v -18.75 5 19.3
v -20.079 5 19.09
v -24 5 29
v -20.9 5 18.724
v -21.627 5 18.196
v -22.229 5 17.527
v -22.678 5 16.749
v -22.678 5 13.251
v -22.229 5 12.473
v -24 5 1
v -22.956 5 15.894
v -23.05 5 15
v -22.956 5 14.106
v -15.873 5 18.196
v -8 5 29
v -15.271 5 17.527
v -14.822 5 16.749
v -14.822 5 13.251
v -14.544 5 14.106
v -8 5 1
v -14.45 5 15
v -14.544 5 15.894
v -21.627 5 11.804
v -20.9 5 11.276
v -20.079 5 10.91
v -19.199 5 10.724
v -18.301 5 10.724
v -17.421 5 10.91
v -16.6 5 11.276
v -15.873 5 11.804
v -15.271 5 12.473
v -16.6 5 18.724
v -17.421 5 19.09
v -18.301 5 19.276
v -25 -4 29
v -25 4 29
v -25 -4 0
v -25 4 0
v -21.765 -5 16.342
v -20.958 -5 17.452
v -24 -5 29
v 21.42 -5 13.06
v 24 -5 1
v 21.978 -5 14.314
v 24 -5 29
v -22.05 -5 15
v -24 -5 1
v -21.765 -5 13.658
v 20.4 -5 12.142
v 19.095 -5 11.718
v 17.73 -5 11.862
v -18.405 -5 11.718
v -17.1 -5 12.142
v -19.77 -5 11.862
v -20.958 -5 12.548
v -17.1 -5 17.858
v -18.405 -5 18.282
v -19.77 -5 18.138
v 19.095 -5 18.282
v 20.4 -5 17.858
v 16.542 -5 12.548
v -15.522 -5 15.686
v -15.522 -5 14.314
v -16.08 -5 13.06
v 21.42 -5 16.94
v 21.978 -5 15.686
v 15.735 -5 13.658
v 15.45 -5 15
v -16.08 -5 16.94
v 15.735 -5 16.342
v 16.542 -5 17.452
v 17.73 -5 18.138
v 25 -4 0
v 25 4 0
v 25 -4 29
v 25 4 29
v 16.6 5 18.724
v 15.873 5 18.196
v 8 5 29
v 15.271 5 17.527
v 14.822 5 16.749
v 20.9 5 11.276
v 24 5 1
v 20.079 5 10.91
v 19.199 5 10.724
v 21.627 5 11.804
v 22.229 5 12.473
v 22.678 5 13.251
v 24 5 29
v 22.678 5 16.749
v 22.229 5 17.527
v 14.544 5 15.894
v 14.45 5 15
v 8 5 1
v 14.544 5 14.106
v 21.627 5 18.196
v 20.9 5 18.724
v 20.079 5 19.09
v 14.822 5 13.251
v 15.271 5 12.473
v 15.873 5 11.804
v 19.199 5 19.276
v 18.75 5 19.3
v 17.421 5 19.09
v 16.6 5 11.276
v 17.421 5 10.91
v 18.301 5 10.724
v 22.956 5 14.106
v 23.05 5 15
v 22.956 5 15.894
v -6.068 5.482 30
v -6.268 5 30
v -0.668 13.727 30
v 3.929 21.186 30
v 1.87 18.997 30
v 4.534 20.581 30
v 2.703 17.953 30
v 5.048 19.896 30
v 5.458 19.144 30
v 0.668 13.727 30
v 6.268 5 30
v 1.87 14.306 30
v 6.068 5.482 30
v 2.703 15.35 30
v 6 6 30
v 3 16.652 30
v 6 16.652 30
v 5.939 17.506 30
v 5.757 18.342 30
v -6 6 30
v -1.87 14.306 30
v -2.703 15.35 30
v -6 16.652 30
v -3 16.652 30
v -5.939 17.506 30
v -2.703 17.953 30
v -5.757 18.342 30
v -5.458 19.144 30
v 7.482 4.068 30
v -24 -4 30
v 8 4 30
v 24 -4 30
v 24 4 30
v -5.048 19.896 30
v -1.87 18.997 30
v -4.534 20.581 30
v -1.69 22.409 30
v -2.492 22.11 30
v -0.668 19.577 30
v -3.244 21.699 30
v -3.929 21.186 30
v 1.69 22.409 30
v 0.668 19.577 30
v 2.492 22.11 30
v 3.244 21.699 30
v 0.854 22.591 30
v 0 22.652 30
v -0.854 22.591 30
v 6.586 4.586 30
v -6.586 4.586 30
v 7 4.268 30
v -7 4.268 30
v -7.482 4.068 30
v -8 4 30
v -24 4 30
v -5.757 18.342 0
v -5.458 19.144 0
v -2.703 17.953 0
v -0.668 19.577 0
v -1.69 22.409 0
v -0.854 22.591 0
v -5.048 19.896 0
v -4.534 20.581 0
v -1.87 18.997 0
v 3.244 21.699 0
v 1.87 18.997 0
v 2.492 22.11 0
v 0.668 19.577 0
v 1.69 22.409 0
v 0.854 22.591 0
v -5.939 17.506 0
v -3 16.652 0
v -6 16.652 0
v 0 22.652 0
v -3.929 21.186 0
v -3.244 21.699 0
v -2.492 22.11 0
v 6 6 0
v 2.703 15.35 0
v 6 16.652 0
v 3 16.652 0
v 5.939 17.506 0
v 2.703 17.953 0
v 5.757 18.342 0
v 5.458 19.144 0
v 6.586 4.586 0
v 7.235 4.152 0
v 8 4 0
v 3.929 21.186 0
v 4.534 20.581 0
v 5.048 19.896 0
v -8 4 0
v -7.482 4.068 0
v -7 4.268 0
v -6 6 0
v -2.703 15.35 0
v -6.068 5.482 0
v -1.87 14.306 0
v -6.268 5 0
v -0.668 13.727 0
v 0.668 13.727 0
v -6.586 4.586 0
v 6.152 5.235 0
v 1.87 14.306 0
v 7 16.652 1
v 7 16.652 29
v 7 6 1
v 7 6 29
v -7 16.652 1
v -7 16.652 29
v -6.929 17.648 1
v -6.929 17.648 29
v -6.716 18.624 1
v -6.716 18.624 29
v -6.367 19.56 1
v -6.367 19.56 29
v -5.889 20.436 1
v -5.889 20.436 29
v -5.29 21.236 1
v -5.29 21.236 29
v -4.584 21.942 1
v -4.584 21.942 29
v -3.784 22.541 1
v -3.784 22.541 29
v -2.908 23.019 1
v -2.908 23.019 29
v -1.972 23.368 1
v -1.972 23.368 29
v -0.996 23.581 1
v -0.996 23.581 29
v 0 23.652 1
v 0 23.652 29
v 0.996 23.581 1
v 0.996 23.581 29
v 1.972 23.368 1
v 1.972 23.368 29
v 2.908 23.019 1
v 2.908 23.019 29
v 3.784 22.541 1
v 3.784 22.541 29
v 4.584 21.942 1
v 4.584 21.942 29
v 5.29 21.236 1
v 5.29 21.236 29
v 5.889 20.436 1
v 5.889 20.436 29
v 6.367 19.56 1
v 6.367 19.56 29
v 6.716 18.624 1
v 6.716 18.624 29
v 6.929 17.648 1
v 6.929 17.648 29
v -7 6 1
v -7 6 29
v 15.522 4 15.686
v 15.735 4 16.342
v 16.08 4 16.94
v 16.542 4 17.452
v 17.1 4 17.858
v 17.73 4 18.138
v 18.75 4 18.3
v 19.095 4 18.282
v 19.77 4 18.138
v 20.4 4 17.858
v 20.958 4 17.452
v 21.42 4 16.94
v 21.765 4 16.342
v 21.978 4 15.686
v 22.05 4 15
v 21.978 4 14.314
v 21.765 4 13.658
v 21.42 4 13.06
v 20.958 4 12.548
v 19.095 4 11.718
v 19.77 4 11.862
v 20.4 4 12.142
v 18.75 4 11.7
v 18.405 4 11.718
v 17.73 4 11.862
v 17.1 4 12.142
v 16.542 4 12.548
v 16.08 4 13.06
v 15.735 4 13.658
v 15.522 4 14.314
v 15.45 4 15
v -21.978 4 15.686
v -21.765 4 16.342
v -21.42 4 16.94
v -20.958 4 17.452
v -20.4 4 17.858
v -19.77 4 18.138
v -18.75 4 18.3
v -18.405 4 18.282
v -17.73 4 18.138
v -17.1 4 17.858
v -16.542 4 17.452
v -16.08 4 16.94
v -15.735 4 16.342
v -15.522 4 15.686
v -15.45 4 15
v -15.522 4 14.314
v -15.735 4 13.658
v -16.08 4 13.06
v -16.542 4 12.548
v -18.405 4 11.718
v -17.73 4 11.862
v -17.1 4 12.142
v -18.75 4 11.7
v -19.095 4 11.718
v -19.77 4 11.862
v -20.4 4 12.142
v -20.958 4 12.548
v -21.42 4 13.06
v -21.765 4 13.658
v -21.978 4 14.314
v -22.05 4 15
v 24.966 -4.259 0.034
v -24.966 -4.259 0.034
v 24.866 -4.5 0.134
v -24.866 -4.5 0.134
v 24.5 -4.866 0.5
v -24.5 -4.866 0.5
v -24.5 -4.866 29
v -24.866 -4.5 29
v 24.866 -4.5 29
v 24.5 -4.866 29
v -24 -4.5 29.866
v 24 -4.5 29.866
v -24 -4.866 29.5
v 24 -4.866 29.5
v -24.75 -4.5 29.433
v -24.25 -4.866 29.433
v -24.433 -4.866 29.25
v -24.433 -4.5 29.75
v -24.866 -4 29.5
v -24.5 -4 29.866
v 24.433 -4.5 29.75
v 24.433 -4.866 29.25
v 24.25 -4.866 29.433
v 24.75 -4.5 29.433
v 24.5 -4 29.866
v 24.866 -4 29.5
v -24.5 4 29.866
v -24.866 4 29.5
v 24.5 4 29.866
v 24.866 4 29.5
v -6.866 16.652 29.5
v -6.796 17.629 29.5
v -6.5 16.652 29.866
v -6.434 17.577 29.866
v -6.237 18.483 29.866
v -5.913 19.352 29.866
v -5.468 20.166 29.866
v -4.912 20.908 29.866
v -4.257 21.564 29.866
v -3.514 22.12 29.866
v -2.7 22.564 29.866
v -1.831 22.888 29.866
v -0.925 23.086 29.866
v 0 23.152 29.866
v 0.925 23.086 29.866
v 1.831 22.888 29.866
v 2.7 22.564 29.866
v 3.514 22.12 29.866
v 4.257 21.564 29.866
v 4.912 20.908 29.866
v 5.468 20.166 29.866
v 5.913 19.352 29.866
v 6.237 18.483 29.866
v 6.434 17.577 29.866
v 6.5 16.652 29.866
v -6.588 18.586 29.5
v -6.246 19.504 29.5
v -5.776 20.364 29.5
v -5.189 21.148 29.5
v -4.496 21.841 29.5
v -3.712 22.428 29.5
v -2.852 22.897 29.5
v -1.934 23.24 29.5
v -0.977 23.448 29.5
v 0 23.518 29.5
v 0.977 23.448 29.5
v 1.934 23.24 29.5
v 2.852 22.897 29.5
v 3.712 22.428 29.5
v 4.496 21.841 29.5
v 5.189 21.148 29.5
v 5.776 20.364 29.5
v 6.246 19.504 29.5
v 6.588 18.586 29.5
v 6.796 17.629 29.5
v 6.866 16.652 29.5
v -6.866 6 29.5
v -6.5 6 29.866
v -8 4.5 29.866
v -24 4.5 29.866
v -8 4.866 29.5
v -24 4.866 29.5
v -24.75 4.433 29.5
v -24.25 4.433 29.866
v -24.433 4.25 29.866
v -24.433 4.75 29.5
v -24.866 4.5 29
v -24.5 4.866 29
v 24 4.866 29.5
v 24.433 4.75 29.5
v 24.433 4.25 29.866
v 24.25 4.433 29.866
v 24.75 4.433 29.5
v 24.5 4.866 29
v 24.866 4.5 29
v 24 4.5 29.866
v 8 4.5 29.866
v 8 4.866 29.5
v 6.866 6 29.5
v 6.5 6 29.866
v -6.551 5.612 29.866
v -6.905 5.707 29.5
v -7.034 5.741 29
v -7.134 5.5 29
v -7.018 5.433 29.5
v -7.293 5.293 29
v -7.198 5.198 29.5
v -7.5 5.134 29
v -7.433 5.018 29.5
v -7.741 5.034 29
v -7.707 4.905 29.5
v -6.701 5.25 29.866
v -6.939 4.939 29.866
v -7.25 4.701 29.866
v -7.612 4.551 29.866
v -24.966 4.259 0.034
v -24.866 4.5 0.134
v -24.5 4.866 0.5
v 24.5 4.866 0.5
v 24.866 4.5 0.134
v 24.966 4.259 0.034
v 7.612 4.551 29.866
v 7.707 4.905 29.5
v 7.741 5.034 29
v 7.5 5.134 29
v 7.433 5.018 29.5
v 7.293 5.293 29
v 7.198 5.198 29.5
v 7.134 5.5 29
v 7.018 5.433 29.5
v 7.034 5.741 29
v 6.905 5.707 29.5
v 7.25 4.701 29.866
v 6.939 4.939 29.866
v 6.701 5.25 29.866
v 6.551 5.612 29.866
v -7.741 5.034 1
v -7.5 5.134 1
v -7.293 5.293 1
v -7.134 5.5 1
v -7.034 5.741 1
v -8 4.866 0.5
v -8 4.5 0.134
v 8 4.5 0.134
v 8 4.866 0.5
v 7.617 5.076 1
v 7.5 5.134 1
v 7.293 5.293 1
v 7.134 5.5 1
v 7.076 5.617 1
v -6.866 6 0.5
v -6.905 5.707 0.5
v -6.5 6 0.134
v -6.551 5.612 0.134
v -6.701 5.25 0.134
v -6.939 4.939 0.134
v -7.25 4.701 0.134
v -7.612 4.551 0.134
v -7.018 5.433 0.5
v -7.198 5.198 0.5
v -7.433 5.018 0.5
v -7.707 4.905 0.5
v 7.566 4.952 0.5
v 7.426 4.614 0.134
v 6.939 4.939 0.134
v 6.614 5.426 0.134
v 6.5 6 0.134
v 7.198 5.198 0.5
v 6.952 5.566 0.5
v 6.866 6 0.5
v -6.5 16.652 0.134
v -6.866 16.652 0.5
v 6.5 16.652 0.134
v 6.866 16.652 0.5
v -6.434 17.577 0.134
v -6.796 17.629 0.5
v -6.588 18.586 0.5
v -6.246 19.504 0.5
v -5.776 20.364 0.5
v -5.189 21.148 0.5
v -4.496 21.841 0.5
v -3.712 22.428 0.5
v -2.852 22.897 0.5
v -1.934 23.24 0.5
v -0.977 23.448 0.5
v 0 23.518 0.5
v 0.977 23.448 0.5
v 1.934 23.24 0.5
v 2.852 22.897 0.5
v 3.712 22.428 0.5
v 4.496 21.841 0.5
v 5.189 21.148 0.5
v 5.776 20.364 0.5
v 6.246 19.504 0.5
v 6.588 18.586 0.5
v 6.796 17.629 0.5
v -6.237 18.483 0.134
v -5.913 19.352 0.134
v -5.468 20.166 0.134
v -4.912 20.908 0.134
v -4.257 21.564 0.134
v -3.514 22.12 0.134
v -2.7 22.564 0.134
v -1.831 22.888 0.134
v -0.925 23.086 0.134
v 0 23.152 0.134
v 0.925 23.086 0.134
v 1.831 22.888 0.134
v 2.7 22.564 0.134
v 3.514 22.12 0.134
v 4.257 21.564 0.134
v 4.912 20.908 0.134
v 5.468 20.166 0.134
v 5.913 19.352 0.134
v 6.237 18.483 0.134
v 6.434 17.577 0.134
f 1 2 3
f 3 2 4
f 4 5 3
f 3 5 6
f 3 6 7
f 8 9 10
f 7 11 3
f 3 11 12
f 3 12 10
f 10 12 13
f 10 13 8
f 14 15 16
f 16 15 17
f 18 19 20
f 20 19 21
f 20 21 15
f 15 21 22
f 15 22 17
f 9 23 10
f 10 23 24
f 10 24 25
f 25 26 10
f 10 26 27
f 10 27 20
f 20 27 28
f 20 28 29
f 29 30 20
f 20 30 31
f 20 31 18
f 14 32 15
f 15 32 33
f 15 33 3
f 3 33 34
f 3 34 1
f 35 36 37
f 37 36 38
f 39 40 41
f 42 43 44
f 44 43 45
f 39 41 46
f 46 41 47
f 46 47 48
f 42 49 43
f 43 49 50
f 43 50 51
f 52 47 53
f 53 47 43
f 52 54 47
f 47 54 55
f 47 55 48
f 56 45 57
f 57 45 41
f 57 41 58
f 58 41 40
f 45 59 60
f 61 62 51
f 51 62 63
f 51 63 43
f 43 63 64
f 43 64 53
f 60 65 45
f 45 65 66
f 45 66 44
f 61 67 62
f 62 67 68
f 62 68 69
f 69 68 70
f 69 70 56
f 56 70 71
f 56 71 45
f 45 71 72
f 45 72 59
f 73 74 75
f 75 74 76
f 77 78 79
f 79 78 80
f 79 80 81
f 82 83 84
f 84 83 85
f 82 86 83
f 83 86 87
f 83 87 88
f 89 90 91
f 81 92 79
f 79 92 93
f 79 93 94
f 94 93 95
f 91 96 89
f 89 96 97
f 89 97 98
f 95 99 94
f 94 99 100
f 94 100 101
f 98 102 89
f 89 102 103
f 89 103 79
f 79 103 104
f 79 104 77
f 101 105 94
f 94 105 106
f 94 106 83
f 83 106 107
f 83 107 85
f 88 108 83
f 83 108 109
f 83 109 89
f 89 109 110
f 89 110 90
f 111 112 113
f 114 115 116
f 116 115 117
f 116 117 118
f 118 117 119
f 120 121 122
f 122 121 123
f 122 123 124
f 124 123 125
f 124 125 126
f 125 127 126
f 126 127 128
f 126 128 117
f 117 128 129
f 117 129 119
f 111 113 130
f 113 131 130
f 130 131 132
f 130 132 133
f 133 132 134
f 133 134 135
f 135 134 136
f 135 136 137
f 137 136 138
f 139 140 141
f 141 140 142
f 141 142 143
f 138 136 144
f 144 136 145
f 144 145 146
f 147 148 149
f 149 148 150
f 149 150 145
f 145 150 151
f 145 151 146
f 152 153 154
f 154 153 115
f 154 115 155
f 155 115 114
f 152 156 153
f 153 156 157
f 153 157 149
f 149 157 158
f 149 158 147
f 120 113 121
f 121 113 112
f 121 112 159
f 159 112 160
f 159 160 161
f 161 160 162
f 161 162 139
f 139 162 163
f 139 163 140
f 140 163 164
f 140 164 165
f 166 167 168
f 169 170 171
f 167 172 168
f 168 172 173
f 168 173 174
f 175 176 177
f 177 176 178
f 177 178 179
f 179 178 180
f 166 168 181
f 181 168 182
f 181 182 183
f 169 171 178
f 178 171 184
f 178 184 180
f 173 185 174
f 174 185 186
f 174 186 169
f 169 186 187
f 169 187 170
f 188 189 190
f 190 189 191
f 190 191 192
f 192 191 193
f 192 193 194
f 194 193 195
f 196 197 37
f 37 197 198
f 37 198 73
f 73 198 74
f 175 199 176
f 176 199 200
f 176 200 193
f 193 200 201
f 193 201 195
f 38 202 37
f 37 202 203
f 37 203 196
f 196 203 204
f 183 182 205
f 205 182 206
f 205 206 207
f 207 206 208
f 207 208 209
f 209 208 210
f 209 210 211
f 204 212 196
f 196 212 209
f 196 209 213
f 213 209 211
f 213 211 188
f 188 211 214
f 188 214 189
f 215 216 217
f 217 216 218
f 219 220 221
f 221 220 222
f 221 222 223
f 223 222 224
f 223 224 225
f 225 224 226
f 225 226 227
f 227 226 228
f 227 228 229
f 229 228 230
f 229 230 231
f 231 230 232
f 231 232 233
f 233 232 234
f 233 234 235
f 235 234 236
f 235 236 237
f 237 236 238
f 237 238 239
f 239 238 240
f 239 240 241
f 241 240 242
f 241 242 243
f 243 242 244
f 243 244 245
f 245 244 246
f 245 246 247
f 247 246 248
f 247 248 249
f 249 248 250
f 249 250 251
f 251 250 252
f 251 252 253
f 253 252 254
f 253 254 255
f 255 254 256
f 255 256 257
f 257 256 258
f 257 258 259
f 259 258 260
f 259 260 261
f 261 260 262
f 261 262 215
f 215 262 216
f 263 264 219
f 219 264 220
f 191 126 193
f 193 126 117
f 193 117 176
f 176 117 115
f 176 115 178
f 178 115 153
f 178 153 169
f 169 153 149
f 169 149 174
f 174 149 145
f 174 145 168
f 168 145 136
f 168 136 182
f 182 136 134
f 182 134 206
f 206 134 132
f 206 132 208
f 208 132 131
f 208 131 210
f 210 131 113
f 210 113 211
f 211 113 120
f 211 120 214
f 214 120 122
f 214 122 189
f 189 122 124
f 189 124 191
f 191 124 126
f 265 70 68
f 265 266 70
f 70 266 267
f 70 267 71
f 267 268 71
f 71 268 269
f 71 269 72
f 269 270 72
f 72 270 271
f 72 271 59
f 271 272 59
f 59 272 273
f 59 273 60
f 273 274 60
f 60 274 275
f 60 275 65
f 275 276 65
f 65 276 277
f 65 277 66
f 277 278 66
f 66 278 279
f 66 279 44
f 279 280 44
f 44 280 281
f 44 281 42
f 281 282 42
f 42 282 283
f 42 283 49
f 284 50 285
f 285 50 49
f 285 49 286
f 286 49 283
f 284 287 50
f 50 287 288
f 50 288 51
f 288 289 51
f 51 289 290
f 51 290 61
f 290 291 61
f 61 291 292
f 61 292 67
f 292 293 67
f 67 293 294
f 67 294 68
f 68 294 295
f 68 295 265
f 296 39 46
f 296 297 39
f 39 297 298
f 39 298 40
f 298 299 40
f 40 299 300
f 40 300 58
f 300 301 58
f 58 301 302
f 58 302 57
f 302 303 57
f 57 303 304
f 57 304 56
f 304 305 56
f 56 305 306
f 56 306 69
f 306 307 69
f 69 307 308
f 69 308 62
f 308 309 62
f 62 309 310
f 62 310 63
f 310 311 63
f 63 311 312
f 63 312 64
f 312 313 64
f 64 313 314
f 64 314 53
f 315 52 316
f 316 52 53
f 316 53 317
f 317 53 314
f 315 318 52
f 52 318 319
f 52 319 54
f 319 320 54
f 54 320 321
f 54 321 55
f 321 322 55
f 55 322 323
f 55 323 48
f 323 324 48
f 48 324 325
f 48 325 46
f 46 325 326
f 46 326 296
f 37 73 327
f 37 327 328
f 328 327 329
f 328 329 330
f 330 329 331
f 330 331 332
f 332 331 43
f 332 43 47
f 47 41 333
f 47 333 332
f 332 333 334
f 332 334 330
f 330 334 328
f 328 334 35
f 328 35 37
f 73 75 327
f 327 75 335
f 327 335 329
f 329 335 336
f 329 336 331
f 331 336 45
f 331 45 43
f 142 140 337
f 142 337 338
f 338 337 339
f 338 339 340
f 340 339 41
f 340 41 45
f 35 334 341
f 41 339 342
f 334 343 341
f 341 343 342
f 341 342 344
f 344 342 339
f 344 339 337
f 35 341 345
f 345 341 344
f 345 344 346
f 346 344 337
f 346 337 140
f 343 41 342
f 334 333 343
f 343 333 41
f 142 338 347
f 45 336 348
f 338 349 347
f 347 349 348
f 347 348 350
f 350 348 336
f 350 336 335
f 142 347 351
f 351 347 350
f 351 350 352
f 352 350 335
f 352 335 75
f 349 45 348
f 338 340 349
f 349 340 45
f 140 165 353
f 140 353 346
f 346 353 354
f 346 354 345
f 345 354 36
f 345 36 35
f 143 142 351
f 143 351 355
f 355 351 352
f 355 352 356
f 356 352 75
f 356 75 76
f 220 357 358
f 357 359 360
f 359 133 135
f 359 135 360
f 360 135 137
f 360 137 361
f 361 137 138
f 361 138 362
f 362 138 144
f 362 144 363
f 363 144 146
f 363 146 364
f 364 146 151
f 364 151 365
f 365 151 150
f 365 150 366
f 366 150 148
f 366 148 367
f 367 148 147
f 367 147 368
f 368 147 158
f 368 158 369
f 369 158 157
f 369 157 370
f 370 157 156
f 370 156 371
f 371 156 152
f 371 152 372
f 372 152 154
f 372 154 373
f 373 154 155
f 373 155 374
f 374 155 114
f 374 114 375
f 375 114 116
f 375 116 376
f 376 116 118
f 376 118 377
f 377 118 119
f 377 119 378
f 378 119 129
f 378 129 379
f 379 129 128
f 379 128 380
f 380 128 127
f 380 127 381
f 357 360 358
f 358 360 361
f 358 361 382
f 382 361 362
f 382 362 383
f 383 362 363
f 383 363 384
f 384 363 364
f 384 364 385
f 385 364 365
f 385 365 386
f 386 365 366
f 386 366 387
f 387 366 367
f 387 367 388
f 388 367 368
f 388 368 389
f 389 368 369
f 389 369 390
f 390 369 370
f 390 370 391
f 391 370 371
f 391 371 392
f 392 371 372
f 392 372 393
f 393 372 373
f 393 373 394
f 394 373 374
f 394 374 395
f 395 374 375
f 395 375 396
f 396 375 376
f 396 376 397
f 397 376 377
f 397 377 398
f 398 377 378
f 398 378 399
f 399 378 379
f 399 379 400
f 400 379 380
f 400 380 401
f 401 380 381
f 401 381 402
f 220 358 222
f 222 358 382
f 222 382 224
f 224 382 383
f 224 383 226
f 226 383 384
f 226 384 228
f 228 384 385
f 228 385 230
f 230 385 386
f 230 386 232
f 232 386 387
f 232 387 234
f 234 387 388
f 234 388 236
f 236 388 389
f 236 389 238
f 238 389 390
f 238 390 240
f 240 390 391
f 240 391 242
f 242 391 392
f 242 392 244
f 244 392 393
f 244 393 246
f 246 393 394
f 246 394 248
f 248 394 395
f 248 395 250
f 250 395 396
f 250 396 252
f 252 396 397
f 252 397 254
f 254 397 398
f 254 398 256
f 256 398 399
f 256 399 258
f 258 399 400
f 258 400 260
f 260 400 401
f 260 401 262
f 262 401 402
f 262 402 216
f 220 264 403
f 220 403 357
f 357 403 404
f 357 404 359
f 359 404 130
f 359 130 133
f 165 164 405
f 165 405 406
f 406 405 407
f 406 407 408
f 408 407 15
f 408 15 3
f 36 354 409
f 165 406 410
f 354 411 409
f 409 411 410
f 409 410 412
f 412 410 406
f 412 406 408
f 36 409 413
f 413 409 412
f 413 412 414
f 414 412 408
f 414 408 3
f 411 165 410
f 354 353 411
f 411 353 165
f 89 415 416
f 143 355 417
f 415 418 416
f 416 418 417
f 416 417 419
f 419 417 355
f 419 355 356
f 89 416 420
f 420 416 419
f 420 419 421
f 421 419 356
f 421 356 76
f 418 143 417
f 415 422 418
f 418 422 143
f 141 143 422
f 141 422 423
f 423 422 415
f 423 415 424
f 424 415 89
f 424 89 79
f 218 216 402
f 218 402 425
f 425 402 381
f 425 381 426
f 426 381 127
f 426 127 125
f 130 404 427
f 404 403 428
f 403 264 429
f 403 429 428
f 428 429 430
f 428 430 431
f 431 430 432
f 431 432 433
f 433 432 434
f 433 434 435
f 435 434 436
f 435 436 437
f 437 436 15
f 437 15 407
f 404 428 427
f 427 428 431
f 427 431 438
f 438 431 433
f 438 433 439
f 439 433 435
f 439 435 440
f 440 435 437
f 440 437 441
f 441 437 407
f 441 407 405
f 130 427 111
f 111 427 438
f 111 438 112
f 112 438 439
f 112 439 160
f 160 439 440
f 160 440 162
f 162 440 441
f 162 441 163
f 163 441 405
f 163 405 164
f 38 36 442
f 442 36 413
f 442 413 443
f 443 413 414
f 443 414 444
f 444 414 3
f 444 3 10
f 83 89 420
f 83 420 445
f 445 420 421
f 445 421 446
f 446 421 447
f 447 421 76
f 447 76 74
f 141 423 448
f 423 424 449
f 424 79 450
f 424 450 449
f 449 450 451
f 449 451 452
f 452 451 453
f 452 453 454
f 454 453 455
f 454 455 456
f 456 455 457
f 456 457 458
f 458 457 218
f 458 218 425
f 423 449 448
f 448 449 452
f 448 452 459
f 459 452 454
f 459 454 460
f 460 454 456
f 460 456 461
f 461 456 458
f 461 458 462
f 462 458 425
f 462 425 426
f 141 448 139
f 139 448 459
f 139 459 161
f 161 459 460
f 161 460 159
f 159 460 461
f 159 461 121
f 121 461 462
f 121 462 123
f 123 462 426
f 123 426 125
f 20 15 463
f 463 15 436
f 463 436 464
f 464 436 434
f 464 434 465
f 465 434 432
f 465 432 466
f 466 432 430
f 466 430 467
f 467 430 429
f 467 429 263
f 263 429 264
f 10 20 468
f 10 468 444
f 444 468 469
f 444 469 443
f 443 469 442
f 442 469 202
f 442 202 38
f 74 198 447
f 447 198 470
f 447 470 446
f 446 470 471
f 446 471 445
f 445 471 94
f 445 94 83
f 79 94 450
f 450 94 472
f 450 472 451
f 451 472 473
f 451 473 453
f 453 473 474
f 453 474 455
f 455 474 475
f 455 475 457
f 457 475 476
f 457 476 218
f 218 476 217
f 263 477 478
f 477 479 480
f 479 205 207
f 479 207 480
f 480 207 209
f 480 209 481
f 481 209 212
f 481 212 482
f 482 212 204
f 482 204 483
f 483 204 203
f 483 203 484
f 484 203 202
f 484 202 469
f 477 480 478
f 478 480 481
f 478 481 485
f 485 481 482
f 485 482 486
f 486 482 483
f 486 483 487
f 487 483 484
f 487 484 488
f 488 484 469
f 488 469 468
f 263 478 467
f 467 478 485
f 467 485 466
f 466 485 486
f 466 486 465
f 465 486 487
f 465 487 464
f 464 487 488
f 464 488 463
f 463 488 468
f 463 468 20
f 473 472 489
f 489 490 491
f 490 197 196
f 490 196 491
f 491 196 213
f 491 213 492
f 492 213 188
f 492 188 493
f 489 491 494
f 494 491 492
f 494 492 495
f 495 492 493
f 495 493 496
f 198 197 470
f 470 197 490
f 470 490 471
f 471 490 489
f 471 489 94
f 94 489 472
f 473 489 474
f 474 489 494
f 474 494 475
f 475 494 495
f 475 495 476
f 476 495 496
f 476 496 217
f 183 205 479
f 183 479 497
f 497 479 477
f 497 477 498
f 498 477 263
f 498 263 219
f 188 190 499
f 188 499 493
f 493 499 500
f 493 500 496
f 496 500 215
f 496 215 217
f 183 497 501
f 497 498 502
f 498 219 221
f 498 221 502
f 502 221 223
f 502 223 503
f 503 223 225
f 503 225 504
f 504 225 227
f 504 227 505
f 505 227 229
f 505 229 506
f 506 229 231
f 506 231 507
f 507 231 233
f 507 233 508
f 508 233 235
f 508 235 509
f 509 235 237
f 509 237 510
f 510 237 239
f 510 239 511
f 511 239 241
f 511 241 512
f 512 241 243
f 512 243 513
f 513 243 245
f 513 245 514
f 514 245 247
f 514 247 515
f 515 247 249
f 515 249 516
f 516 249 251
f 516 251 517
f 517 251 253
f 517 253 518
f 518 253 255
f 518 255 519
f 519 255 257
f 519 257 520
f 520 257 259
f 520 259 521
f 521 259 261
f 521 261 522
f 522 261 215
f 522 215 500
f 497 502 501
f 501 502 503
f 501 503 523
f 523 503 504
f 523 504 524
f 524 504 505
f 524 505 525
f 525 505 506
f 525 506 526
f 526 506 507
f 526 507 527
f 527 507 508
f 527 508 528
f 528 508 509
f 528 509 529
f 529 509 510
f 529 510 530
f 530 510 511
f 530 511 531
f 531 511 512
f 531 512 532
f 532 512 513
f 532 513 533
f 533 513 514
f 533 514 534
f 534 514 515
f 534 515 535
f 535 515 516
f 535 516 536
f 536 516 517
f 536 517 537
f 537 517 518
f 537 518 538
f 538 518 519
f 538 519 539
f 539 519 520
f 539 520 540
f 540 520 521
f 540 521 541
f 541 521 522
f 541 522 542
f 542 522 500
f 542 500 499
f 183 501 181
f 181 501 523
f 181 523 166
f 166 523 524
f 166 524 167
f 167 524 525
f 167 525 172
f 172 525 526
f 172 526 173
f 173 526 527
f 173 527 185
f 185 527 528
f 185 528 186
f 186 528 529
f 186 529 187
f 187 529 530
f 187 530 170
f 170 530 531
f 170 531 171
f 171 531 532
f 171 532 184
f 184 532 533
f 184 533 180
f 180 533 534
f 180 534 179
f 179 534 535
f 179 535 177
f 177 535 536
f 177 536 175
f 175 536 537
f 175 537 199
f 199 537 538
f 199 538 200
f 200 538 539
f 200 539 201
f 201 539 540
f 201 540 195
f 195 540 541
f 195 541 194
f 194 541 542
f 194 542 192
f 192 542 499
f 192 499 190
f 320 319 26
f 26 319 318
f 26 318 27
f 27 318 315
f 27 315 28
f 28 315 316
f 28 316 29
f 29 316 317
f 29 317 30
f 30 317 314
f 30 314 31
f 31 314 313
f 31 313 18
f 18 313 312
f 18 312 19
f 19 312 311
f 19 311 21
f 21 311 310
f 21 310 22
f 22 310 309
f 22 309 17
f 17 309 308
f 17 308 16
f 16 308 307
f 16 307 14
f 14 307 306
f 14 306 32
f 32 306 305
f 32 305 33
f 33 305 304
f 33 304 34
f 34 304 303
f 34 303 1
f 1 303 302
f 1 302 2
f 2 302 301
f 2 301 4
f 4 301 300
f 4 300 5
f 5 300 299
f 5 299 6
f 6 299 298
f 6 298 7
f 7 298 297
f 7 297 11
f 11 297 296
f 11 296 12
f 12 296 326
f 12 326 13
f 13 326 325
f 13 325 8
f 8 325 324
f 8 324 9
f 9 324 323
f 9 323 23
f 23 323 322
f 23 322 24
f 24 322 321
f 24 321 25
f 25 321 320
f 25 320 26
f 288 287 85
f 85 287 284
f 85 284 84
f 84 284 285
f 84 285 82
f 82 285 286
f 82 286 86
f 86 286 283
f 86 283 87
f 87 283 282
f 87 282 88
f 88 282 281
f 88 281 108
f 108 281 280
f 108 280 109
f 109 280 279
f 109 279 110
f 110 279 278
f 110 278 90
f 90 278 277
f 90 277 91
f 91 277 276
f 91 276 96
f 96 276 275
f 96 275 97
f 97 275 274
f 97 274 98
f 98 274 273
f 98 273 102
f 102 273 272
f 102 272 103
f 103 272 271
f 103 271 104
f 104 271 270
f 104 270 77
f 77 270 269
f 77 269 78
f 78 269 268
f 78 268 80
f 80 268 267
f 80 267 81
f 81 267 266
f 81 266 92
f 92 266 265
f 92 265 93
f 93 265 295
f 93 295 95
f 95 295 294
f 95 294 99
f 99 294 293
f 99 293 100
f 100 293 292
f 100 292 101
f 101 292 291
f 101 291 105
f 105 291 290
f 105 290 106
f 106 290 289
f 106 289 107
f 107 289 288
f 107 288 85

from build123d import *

# Parameters (mm, degrees)
SKETCH1_W           = 50
SKETCH1_H           = 10
BOSS_EXTRUDE1_DEPTH = 30
SKETCH2_R           = 3
BOSS_EXTRUDE2_DEPTH = 30
CUT_EXTRUDE1_REACH  = 45.277
SKETCH3_R           = 3.3
FILLET1_R           = 1
CHAMFER1_SIZE       = 1


with BuildPart() as part:
    # Sketch1 → Boss-Extrude1 (new body)
    with BuildSketch(Plane.XY):
        Rectangle(SKETCH1_W, SKETCH1_H)
    extrude(amount=BOSS_EXTRUDE1_DEPTH)

    # Sketch2 → Boss-Extrude2 (add)
    with BuildSketch(Plane.XY.offset(30)):
        with BuildLine():
            Line((-7, 5), (-7, 16.65178901))
            ThreePointArc((-7, 16.65178901), (0, 23.65178901), (7, 16.65178901))
            Line((7, 16.65178901), (7, 5))
            Line((7, 5), (-7, 5))
        make_face()
        with Locations((0, 16.65178901)):
            Circle(SKETCH2_R, mode=Mode.SUBTRACT)
    extrude(amount=-BOSS_EXTRUDE2_DEPTH)

    # Sketch3 → Cut-Extrude1 (cut, up to next)
    with BuildSketch(Plane(origin=(0, 5, 0), x_dir=(1, 0, 0), z_dir=(0, 1, 0)), mode=Mode.PRIVATE) as cut_extrude1_sk1:
        with Locations(Location((-18.75, -15, 0), (0, 0, 180))):
            Circle(SKETCH3_R)
    cut_extrude1_tool1 = extrude(cut_extrude1_sk1.sketch, amount=-CUT_EXTRUDE1_REACH, mode=Mode.PRIVATE) & part.part
    # Sketch3 → Cut-Extrude1 (cut, up to next)
    with BuildSketch(Plane(origin=(0, 5, 0), x_dir=(1, 0, 0), z_dir=(0, 1, 0)), mode=Mode.PRIVATE) as cut_extrude1_sk2:
        with Locations(Location((18.75, -15, 0), (0, 0, 180))):
            Circle(SKETCH3_R)
    cut_extrude1_tool2 = extrude(cut_extrude1_sk2.sketch, amount=-CUT_EXTRUDE1_REACH, mode=Mode.PRIVATE) & part.part
    add(cut_extrude1_tool1.solids().sort_by_distance((-18.75, 5, 15))[0], mode=Mode.SUBTRACT)
    add(cut_extrude1_tool2.solids().sort_by_distance((18.75, 5, 15))[0], mode=Mode.SUBTRACT)

    # Fillet1
    fillet1_edges = [part.edges().sort_by_distance(p)[0] for p in [
        (25, 0, 30),
        (-16, 5, 0),
        (-16, 5, 30),
        (16, 5, 30),
        (-7, 5, 15),
        (7, 5, 15),
        (7, 10.825894505, 30),
        (0, 23.65178901, 30),
        (-7, 10.825894505, 30),
        (-7, 10.825894505, 0),
        (0, 23.65178901, 0),
        (7, 10.825894505, 0),
        (-25, 0, 30),
        (16, 5, 0),
        (0, -5, 0),
        (-25, 5, 15),
        (25, 5, 15),
        (25, -5, 15),
        (-25, -5, 15),
        (0, -5, 30),
    ]]
    fillet(fillet1_edges, radius=FILLET1_R)

    # Chamfer1
    chamfer1_edges = [part.edges().sort_by_distance(p)[0] for p in [
        (-15.45, 5, 15),
        (22.05, 5, 15),
    ]]
    chamfer(chamfer1_edges, length=CHAMFER1_SIZE)


solid = part.part
